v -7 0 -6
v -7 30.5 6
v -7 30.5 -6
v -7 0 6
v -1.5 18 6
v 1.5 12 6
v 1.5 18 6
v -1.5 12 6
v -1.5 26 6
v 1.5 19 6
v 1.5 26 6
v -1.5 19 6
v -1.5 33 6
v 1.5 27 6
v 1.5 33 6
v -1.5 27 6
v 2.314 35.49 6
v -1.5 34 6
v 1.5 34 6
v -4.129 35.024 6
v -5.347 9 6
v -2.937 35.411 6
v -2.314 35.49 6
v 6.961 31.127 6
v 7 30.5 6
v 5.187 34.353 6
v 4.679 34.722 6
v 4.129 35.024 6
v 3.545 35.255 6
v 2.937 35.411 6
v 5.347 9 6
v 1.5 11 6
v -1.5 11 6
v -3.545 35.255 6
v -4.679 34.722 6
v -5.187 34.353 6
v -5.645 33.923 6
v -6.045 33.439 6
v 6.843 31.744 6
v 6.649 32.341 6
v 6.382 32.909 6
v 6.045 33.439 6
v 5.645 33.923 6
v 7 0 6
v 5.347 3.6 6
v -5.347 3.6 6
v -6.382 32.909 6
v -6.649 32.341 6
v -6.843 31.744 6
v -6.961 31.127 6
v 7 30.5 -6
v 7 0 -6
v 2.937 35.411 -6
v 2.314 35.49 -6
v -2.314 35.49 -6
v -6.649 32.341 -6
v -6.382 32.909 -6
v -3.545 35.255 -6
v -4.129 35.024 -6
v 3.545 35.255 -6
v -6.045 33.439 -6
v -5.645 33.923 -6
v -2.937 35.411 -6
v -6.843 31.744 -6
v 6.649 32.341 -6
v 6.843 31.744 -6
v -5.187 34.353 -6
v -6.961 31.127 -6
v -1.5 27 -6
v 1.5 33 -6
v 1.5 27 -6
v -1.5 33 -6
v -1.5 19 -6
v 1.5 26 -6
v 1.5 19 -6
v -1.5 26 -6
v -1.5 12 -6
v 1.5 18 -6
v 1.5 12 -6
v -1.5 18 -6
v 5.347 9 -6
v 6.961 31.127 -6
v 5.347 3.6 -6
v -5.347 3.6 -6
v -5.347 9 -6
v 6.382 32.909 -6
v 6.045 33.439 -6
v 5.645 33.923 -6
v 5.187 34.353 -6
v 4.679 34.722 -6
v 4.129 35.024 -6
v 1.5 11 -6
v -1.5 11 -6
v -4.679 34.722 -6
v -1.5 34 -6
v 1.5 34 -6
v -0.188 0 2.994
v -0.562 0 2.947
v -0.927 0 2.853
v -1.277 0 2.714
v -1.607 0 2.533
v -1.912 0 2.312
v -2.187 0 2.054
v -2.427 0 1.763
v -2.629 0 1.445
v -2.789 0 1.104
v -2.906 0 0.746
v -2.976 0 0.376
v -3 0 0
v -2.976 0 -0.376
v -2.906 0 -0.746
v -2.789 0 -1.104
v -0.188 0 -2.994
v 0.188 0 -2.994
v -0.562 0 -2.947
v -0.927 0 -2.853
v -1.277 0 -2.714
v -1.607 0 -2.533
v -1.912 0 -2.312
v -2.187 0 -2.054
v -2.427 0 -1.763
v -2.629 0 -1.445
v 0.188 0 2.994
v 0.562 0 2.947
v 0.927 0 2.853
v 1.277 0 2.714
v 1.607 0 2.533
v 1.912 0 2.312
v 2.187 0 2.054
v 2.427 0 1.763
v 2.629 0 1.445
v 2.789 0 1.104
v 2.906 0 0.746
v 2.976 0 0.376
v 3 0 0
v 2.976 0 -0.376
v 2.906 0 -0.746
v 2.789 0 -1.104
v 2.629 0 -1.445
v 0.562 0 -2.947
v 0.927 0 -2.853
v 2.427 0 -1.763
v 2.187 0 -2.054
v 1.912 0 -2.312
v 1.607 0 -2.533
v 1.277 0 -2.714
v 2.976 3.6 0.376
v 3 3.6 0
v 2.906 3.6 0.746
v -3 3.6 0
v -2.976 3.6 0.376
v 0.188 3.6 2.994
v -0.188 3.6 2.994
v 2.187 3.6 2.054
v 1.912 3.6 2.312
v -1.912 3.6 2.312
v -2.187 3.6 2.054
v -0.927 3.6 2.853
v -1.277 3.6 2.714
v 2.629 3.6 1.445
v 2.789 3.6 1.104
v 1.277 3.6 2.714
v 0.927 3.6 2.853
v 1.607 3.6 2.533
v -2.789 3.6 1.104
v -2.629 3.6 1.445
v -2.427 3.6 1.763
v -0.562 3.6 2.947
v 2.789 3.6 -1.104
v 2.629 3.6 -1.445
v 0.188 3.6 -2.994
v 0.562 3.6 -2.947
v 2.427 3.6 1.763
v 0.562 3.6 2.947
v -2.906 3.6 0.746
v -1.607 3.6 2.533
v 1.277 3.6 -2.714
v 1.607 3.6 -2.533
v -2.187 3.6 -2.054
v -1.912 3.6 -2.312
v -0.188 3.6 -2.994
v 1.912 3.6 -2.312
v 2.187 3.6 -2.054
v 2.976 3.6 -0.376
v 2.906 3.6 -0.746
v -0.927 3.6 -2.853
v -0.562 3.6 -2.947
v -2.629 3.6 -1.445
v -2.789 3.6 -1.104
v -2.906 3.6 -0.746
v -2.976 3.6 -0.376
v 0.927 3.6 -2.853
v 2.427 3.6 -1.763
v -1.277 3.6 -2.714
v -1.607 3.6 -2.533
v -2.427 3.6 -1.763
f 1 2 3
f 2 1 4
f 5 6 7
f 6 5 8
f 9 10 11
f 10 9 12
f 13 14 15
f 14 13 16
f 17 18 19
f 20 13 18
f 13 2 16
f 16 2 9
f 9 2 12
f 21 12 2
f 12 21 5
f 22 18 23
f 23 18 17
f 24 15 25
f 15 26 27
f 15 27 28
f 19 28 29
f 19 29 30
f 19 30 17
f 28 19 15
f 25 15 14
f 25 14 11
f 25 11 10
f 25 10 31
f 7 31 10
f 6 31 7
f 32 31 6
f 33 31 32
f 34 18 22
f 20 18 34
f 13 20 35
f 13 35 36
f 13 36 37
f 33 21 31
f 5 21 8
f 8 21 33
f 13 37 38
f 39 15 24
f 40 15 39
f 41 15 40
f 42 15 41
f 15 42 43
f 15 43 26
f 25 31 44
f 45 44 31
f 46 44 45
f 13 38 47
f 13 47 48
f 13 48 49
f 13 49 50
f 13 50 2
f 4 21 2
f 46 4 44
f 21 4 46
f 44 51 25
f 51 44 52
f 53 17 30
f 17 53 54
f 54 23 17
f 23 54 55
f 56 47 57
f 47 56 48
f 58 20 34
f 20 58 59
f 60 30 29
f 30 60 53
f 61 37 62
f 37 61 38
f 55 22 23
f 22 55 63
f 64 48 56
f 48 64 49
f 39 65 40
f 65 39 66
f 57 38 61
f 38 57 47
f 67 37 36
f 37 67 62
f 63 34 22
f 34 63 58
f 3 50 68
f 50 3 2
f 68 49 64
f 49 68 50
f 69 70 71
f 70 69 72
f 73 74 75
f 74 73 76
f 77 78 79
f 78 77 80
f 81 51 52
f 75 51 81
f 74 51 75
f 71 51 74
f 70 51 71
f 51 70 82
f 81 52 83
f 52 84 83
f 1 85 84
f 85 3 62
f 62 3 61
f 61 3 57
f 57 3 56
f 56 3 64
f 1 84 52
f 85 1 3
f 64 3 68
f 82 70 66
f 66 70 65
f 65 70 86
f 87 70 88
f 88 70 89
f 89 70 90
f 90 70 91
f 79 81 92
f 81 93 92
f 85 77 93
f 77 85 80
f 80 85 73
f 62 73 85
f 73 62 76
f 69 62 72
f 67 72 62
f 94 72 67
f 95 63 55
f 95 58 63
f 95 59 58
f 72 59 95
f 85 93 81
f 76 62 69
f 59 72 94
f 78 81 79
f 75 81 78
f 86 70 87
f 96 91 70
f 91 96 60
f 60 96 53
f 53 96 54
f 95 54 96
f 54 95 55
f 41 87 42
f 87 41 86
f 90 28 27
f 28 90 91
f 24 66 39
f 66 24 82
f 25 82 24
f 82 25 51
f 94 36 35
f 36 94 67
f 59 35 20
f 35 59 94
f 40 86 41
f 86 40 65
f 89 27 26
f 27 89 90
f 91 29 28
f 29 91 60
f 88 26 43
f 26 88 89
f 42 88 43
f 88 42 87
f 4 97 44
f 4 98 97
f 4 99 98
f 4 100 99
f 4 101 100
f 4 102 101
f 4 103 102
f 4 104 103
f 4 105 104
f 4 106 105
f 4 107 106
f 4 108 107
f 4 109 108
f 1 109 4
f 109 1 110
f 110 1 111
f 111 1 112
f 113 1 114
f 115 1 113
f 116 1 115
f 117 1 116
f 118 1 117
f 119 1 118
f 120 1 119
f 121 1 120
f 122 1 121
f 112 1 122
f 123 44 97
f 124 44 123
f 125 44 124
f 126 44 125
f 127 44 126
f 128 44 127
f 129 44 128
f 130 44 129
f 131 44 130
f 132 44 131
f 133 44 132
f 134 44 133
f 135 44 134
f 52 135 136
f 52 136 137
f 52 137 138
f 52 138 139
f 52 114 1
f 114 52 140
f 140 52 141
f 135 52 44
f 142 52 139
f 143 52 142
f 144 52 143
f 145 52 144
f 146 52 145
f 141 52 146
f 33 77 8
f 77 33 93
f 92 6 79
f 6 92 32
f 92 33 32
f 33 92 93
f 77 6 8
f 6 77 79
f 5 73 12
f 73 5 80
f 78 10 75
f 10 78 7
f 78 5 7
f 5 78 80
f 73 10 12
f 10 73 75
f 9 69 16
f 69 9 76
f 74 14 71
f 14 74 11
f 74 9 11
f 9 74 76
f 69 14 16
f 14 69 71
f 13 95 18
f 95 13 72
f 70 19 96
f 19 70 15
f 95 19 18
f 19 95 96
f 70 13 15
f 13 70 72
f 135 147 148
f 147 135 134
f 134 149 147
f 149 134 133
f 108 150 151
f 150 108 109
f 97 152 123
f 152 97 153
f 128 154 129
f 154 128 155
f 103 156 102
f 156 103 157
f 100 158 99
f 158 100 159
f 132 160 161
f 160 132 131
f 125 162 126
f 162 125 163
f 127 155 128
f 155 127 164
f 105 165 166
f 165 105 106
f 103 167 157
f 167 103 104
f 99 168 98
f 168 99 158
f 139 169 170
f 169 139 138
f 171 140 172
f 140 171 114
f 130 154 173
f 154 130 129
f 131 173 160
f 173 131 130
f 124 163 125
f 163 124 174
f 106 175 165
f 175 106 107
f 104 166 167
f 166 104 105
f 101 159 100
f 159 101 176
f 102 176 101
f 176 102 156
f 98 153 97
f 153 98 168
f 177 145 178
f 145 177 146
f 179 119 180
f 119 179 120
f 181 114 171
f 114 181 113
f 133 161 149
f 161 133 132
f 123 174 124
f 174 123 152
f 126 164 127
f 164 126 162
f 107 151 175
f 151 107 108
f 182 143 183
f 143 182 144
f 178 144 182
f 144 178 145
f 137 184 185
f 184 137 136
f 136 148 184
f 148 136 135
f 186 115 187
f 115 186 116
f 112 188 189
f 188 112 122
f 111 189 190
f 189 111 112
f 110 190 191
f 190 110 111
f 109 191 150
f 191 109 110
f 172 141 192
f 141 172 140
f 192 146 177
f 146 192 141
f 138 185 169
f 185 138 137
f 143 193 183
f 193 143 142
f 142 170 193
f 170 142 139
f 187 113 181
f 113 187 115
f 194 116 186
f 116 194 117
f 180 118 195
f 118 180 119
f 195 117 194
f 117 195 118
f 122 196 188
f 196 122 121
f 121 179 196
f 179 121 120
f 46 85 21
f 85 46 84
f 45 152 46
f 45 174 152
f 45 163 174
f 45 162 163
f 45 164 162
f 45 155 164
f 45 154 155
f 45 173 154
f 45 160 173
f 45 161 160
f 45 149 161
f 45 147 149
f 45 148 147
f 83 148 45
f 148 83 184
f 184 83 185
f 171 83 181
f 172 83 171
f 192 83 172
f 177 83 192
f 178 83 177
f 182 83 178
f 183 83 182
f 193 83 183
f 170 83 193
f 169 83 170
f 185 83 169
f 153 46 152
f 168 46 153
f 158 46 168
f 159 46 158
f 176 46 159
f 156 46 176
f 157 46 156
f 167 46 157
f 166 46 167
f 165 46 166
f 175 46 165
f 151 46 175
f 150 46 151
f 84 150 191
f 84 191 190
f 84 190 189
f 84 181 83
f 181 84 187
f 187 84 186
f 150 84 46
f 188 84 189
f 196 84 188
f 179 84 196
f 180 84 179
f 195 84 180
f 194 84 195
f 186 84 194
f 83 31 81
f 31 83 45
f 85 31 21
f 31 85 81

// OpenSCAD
$fn = 50;


difference() {
	union() {
		translate(v = [0, 21.0000000000, -6.0000000000]) {
			rotate(a = [0, 0, 0]) {
				hull() {
					translate(v = [-2.0000000000, 9.5000000000, 0]) {
						rotate(a = [0, 0, 0]) {
							translate(v = [0, 0, 0]) {
								rotate(a = [0, 0, 0]) {
									cylinder(h = 12, r = 5);
								}
							}
						}
					}
					translate(v = [2.0000000000, 9.5000000000, 0]) {
						rotate(a = [0, 0, 0]) {
							translate(v = [0, 0, 0]) {
								rotate(a = [0, 0, 0]) {
									cylinder(h = 12, r = 5);
								}
							}
						}
					}
					translate(v = [-2.0000000000, -9.5000000000, 0]) {
						rotate(a = [0, 0, 0]) {
							translate(v = [0, 0, 0]) {
								rotate(a = [0, 0, 0]) {
									cylinder(h = 12, r = 5);
								}
							}
						}
					}
					translate(v = [2.0000000000, -9.5000000000, 0]) {
						rotate(a = [0, 0, 0]) {
							translate(v = [0, 0, 0]) {
								rotate(a = [0, 0, 0]) {
									cylinder(h = 12, r = 5);
								}
							}
						}
					}
				}
			}
		}
		translate(v = [-7.0000000000, 0, -6.0000000000]) {
			rotate(a = [0, 0, 0]) {
				cube(size = [14, 13.5000000000, 12]);
			}
		}
	}
	union() {
		translate(v = [-1.5000000000, 11.0000000000, -50]) {
			rotate(a = [0, 0, 0]) {
				cube(size = [3, 1, 100]);
			}
		}
		translate(v = [-1.5000000000, 18.0000000000, -50]) {
			rotate(a = [0, 0, 0]) {
				cube(size = [3, 1, 100]);
			}
		}
		translate(v = [-1.5000000000, 26.0000000000, -50]) {
			rotate(a = [0, 0, 0]) {
				cube(size = [3, 1, 100]);
			}
		}
		translate(v = [-1.5000000000, 33.0000000000, -50]) {
			rotate(a = [0, 0, 0]) {
				cube(size = [3, 1, 100]);
			}
		}
		translate(v = [0.0000000000, 8, 0]) {
			rotate(a = [90, 0, 0]) {
				cylinder(h = 8, r = 3.0000000000);
			}
		}
		translate(v = [-5.3466204506, 9, -25]) {
			rotate(a = [90, 0, 0]) {
				cube(size = [10.6932409012, 100, 5.4000000000]);
			}
		}
	}
}
